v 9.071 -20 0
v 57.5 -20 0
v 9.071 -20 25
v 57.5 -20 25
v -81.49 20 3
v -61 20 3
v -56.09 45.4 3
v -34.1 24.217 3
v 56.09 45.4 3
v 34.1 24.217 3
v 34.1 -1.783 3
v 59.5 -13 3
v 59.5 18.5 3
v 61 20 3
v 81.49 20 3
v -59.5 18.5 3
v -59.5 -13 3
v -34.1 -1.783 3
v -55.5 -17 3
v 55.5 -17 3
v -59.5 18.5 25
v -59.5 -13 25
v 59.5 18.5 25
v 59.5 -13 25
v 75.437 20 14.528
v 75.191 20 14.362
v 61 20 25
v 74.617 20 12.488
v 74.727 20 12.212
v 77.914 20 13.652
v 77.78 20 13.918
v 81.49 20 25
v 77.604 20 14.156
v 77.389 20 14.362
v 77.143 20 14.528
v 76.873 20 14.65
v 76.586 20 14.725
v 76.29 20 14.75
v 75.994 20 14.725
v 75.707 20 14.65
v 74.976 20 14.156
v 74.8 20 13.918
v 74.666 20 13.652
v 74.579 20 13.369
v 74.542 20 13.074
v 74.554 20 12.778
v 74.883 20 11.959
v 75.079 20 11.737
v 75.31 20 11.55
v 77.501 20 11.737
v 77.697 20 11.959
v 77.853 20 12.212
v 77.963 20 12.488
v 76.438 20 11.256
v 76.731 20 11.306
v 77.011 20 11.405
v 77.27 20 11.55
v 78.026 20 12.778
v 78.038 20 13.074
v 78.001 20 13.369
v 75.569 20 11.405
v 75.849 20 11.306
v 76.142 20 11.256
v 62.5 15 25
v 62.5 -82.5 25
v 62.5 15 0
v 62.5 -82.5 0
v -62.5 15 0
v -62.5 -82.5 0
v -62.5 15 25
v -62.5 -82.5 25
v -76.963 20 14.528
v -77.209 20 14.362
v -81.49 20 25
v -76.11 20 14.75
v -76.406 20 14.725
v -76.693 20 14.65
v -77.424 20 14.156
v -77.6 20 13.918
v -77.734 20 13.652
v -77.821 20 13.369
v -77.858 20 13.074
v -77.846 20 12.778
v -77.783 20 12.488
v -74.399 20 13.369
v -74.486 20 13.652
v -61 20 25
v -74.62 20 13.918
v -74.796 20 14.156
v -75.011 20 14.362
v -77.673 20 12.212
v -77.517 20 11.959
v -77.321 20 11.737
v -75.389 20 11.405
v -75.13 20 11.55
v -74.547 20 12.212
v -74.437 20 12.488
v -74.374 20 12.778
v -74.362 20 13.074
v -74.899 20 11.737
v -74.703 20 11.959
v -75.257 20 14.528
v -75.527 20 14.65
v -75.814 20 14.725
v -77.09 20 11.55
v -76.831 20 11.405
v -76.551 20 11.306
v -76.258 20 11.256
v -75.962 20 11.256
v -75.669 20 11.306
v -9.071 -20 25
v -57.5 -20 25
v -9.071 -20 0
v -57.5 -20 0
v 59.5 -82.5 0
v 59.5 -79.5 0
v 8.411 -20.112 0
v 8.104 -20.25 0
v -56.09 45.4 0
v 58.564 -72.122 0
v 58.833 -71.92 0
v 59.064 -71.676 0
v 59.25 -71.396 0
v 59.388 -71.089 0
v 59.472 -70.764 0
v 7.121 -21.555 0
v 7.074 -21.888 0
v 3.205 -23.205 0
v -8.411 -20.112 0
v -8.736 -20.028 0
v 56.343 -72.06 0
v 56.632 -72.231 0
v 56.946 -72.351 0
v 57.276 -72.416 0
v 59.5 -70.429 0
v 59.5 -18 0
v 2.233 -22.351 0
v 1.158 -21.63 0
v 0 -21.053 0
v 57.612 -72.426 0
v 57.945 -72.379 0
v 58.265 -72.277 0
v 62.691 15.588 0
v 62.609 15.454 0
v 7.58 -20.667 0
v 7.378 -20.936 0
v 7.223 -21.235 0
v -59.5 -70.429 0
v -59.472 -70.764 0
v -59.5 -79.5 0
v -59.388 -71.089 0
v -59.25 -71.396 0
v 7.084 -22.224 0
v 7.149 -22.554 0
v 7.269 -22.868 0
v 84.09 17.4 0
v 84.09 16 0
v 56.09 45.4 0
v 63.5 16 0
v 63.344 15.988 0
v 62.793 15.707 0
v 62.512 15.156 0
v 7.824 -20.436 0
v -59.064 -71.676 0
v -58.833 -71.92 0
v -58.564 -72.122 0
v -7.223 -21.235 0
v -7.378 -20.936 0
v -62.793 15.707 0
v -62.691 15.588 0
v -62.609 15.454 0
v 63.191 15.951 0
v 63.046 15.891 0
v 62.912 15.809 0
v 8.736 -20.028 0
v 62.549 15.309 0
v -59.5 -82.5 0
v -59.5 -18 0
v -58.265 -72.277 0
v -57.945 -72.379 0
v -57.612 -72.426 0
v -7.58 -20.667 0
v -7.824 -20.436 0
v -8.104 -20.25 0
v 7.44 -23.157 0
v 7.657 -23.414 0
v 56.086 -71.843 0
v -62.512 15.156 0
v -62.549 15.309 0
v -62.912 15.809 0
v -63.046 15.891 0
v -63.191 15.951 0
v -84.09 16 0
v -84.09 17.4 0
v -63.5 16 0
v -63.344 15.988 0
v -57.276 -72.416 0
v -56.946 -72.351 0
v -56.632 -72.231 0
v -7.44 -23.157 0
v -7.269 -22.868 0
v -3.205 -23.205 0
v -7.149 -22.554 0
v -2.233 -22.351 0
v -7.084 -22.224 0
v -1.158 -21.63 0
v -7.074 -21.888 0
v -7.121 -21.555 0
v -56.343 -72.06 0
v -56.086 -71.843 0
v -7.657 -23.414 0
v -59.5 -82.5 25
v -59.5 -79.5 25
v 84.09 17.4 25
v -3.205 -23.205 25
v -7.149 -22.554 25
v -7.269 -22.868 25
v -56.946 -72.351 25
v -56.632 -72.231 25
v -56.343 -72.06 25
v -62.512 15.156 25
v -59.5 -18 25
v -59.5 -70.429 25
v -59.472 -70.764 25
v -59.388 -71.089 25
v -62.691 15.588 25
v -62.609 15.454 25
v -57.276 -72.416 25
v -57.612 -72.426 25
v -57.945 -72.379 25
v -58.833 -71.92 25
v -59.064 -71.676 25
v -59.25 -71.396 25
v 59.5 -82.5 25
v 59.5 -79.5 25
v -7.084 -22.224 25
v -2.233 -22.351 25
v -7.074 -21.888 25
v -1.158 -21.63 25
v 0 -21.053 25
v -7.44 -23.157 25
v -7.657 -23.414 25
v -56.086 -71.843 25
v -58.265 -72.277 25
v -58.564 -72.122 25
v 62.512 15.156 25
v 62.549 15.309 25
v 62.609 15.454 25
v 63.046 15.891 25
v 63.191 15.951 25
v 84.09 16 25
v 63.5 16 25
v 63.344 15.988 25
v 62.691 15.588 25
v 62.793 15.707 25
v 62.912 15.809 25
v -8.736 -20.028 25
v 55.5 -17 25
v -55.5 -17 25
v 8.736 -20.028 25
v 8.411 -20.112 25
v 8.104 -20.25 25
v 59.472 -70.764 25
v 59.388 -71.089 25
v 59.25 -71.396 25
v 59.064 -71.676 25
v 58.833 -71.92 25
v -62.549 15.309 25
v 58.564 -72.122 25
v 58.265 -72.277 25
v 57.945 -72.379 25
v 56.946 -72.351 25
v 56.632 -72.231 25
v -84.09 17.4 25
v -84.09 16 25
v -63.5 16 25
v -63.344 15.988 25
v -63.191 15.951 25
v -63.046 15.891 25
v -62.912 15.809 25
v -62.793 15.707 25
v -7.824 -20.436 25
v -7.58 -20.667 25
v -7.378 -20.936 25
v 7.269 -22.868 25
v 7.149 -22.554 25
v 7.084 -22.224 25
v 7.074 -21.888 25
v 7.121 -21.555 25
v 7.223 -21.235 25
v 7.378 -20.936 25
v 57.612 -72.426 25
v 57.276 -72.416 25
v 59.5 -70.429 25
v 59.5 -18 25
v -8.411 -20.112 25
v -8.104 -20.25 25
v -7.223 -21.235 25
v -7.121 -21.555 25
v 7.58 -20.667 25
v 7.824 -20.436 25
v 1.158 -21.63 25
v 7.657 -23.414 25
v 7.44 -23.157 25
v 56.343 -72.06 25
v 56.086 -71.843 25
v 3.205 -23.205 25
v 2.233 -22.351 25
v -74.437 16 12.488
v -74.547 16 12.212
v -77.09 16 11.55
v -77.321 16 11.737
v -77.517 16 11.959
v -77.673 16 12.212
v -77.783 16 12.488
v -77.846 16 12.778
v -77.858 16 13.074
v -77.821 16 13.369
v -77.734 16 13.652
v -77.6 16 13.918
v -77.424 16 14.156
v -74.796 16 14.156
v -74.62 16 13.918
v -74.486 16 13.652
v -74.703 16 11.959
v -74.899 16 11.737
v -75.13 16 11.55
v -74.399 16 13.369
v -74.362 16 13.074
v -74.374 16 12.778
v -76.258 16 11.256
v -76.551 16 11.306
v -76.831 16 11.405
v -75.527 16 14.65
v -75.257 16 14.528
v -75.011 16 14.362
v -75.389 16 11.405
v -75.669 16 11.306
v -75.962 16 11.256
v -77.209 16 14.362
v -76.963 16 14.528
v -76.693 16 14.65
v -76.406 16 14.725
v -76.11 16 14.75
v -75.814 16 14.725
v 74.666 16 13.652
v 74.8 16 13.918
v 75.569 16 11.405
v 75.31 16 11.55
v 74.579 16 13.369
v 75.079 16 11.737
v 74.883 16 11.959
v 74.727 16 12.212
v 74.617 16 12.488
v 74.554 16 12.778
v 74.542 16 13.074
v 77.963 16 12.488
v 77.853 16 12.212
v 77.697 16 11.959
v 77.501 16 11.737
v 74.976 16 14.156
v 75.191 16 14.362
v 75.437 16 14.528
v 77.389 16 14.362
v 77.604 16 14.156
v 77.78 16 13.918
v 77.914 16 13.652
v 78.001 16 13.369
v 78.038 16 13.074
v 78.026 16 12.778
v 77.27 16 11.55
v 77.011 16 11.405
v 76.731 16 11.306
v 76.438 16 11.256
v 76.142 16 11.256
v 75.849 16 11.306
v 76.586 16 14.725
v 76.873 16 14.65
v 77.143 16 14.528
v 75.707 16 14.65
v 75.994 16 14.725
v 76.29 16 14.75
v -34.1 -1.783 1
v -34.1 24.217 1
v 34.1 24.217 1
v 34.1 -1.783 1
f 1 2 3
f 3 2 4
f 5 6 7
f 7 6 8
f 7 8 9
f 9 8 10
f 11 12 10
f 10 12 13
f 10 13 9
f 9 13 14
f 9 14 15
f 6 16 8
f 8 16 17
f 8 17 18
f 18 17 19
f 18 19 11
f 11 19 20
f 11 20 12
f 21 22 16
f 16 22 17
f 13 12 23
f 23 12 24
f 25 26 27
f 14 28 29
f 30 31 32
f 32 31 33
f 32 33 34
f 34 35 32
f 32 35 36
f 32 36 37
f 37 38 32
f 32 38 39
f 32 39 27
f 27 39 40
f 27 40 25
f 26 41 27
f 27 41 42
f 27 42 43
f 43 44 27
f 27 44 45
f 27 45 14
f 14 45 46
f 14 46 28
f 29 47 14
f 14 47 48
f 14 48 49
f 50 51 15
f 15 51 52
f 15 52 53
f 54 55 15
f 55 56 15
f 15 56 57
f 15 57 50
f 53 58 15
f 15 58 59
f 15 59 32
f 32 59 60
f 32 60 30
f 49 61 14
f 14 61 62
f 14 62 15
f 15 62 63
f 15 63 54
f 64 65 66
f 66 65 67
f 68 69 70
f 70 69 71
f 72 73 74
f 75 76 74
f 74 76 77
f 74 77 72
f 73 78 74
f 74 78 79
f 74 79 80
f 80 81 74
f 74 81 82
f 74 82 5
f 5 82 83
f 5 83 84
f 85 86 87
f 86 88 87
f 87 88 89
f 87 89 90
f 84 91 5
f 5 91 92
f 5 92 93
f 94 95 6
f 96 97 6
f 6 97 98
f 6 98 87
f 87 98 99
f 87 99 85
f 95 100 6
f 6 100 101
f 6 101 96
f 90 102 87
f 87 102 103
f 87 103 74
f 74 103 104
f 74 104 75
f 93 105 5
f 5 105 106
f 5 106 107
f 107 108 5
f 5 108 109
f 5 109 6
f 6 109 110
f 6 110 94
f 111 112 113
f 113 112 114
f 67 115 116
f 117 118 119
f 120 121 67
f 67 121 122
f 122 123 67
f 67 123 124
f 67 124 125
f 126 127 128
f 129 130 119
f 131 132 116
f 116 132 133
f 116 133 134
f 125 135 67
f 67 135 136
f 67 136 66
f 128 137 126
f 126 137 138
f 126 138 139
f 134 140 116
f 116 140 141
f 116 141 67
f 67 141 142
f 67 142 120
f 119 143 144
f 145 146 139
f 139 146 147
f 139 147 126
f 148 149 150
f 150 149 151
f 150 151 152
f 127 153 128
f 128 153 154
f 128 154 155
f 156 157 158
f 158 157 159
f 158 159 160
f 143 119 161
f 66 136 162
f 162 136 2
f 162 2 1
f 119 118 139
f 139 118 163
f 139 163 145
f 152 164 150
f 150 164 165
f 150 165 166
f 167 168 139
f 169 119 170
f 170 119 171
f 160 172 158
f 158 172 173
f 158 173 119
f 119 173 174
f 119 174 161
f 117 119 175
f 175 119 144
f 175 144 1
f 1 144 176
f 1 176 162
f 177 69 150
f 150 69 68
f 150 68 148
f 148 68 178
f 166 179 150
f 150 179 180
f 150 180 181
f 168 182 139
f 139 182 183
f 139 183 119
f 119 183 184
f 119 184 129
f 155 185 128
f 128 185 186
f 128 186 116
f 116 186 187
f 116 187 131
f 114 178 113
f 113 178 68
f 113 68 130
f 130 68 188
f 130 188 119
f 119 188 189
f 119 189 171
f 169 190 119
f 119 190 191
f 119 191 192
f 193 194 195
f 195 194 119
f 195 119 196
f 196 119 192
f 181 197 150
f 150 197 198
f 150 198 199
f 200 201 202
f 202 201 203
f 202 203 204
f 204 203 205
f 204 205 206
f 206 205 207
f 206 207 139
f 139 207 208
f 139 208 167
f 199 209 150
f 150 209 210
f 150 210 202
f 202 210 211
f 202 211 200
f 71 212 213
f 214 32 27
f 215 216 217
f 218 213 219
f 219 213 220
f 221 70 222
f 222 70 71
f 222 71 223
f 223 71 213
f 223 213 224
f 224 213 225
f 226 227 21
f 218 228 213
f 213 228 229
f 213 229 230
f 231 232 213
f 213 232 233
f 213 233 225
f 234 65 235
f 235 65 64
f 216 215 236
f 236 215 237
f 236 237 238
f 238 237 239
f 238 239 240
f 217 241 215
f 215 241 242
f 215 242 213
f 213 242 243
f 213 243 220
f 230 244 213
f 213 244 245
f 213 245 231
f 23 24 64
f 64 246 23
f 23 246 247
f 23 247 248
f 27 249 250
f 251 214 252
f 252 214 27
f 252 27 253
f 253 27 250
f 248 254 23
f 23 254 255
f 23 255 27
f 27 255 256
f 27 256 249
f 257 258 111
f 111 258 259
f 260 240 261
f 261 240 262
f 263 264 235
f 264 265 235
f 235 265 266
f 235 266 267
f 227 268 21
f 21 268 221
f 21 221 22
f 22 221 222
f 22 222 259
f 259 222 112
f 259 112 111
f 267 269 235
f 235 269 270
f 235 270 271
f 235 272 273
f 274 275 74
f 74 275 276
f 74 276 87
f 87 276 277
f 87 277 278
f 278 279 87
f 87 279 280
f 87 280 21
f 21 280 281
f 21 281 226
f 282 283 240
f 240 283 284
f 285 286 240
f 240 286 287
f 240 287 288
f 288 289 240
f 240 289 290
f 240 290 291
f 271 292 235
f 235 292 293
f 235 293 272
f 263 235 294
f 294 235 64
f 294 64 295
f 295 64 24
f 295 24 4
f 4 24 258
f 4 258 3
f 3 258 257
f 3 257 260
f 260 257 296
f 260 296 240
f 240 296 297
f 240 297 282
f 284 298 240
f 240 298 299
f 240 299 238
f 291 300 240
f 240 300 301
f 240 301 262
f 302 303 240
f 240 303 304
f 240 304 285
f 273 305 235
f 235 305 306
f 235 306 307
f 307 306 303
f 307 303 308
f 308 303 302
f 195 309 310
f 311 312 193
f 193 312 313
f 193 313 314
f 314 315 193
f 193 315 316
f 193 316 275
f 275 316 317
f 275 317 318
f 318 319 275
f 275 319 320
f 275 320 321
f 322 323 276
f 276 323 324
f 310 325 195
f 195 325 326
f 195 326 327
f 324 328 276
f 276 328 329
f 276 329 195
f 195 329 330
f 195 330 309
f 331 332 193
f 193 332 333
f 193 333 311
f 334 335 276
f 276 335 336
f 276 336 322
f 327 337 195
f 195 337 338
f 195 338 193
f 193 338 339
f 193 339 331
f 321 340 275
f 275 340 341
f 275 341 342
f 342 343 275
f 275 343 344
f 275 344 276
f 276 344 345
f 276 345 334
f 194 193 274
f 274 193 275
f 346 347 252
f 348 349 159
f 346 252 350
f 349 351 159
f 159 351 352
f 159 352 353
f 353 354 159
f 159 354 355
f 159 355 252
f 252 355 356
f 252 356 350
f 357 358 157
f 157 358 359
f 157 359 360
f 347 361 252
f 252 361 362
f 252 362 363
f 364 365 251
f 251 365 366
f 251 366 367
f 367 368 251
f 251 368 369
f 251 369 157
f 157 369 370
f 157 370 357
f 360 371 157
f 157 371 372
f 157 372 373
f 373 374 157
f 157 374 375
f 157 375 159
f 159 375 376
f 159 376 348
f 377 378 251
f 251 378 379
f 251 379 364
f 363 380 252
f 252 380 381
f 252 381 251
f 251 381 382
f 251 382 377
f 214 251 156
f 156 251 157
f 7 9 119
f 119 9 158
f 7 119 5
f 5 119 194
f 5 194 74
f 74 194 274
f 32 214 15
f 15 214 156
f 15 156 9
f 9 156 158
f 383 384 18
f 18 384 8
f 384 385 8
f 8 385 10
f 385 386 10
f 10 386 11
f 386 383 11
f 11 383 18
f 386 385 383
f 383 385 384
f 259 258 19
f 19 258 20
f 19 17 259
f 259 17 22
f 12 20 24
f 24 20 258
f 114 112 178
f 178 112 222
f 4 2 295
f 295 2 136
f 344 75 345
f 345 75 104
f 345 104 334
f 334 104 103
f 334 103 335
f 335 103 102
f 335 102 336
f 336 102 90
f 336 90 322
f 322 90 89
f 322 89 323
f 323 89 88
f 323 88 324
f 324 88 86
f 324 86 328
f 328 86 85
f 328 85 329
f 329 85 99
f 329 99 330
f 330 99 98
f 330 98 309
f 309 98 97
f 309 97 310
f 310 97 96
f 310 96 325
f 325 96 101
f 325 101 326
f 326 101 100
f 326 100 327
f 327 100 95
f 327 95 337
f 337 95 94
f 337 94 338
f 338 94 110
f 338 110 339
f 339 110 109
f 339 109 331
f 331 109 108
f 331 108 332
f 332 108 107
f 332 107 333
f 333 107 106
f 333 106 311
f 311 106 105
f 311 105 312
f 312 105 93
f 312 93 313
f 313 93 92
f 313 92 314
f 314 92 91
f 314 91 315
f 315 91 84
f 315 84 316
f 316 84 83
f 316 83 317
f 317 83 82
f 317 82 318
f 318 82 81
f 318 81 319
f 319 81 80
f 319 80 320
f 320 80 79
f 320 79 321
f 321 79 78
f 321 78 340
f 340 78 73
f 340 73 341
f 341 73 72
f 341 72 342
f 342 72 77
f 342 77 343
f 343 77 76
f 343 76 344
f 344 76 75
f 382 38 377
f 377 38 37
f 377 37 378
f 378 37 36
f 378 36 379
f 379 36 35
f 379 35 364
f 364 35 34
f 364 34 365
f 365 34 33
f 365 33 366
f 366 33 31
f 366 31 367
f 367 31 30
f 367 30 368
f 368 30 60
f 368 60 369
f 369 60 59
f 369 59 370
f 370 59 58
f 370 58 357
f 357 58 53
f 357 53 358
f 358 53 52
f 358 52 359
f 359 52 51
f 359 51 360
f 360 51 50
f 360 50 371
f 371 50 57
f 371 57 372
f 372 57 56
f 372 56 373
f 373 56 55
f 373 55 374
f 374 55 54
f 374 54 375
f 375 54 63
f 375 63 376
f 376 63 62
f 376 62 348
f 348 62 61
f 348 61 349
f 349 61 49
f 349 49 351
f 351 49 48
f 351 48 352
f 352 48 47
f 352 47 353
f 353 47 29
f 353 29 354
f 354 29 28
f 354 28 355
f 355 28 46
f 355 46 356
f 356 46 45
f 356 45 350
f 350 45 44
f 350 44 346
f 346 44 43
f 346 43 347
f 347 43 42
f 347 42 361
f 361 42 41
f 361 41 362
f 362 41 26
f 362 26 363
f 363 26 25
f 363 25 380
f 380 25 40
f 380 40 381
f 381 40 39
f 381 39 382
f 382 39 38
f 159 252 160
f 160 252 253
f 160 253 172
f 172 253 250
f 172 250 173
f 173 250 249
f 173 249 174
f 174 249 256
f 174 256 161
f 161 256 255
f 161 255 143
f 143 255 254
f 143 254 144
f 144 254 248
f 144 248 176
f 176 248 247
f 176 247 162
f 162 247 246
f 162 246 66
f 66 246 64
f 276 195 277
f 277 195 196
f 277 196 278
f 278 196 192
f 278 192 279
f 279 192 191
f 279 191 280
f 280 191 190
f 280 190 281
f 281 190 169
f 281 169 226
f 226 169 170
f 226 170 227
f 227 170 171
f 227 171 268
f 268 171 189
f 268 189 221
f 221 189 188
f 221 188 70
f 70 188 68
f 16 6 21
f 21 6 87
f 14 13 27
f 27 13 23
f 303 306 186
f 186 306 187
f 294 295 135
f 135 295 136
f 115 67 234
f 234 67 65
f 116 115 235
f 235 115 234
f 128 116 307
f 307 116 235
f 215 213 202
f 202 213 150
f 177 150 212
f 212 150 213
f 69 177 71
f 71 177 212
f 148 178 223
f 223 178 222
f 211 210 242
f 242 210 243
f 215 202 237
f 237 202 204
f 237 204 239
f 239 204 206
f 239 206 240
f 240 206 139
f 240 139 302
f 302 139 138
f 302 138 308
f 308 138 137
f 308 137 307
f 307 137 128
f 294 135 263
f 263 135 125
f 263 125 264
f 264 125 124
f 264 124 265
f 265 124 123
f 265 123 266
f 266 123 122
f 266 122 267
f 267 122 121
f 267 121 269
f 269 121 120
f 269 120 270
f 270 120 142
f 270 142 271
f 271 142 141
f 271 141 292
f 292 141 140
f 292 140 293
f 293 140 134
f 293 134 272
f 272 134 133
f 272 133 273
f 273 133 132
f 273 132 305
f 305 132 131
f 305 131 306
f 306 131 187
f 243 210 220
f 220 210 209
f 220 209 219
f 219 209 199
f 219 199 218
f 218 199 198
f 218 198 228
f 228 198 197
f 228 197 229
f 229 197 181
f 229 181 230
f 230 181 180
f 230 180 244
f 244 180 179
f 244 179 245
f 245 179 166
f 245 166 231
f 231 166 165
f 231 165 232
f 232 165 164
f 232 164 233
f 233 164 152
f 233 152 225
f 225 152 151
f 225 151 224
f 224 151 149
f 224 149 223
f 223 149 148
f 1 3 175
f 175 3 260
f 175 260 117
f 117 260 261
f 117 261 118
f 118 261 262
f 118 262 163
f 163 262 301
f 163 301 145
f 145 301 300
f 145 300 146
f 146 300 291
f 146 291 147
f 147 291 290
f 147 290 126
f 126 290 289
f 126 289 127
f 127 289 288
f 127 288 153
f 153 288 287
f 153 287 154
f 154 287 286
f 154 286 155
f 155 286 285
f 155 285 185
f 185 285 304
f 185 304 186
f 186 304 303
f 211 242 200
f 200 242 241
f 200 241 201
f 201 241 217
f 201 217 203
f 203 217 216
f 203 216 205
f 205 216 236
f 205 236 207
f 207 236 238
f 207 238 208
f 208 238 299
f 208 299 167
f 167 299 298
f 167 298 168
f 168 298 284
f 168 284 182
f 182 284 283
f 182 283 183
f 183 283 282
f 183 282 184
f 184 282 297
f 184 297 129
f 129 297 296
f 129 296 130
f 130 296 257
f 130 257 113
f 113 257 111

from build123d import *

# Parameters (mm, degrees)
SKETCH1_W            = 125
SKETCH1_H            = 40
BOSS_EXTRUDE1_DEPTH  = 3
SKETCH2_W            = 3
SKETCH2_H            = 40
BOSS_EXTRUDE2_DEPTH  = 22
SKETCH4_W            = 25
SKETCH4_H            = 4
BOSS_EXTRUDE4_DEPTH  = 21.59
SKETCH5_W            = 25
SKETCH5_H            = 4
BOSS_EXTRUDE5_DEPTH  = 21.59
SKETCH6_W            = 168.18
SKETCH6_H            = 25.4
BOSS_EXTRUDE6_DEPTH  = 3
CHAMFER1_SIZE        = 28
SKETCH7_W            = 68.2
SKETCH7_H            = 26
CUT_EXTRUDE1_DEPTH   = 2
SKETCH9_W            = 119
SKETCH9_H            = 3
BOSS_EXTRUDE7_DEPTH  = 22
CHAMFER2_SIZE        = 4
CHAMFER3_SIZE        = 5
SKETCH11_R           = 1.75
CUT_EXTRUDE3_DEPTH   = 5
FILLET1_R            = 1
CHAMFER4_SIZE        = 1.5
BOSS_EXTRUDE10_DEPTH = 25
FILLET2_R            = 10
FILLET3_R            = 2
FILLET4_R            = 2


with BuildPart() as part:
    # Sketch1 → Boss-Extrude1 (new body)
    with BuildSketch(Plane.XY):
        Rectangle(SKETCH1_W, SKETCH1_H)
    extrude(amount=BOSS_EXTRUDE1_DEPTH)

    # Sketch2 → Boss-Extrude2 (add)
    with BuildSketch(Plane.XY.offset(3)):
        with Locations((-61, 0)):
            Rectangle(SKETCH2_W, SKETCH2_H)
        with Locations((61, 0)):
            Rectangle(SKETCH2_W, SKETCH2_H)
    extrude(amount=BOSS_EXTRUDE2_DEPTH)

    # Sketch4 → Boss-Extrude4 (add)
    with BuildSketch(Plane.ZY.offset(62.5)):
        with Locations((12.5, 18)):
            Rectangle(SKETCH4_W, SKETCH4_H)
    extrude(amount=BOSS_EXTRUDE4_DEPTH)

    # Sketch5 → Boss-Extrude5 (add)
    with BuildSketch(Plane(origin=(62.5, 0, 0), x_dir=(0, 0, -1), z_dir=(1, 0, 0))):
        with Locations((-12.5, 18)):
            Rectangle(SKETCH5_W, SKETCH5_H)
    extrude(amount=BOSS_EXTRUDE5_DEPTH)

    # Sketch6 → Boss-Extrude6 (add)
    with BuildSketch(Plane(origin=(0, 0, 0), x_dir=(-1, 0, 0), z_dir=(0, 0, -1))):
        with Locations((0, 32.7)):
            Rectangle(SKETCH6_W, SKETCH6_H)
    extrude(amount=-BOSS_EXTRUDE6_DEPTH)

    # Chamfer1
    chamfer1_edges = [part.edges().sort_by_distance(p)[0] for p in [
        (-84.09, 45.4, 1.5),
        (84.09, 45.4, 1.5),
    ]]
    chamfer(chamfer1_edges, length=CHAMFER1_SIZE)

    # Sketch7 → Cut-Extrude1 (cut)
    with BuildSketch(Plane.XY.offset(3)):
        with Locations((0, 11.217156681)):
            Rectangle(SKETCH7_W, SKETCH7_H)
    extrude(amount=-CUT_EXTRUDE1_DEPTH, mode=Mode.SUBTRACT)

    # Sketch9 → Boss-Extrude7 (add)
    with BuildSketch(Plane.XY.offset(3)):
        with Locations((0, -18.5)):
            Rectangle(SKETCH9_W, SKETCH9_H)
    extrude(amount=BOSS_EXTRUDE7_DEPTH)

    # Chamfer2
    chamfer2_edges = [part.edges().sort_by_distance(p)[0] for p in [
        (-59.5, -17, 14),
        (59.5, -17, 14),
    ]]
    chamfer(chamfer2_edges, length=CHAMFER2_SIZE)

    # Chamfer3
    chamfer3_edges = [part.edges().sort_by_distance(p)[0] for p in [
        (62.5, -20, 12.5),
        (-62.5, -20, 12.5),
    ]]
    chamfer(chamfer3_edges, length=CHAMFER3_SIZE)

    # Sketch11 → Cut-Extrude3 (cut)
    with BuildSketch(Plane(origin=(0, 20, 0), x_dir=(1, 0, 0), z_dir=(0, 1, 0))):
        with Locations(Location((-76.11, -13, 0), (0, 0, 270))):
            Circle(SKETCH11_R)
        with Locations(Location((76.29, -13, 0), (0, 0, 270))):
            Circle(SKETCH11_R)
    extrude(amount=-CUT_EXTRUDE3_DEPTH, mode=Mode.SUBTRACT)

    # Fillet1
    fillet1_edges = [part.edges().sort_by_distance(p)[0] for p in [
        (-62.5, 16, 12.5),
        (62.5, 16, 12.5),
    ]]
    fillet(fillet1_edges, radius=FILLET1_R)

    # Chamfer4
    chamfer4_edges = [part.edges().sort_by_distance(p)[0] for p in [
        (-59.5, 20, 14),
        (59.5, 20, 14),
    ]]
    chamfer(chamfer4_edges, length=CHAMFER4_SIZE)

    # Sketch12 → Boss-Extrude10 (add)
    with BuildSketch(Plane.XY.offset(25)):
        Polygon((-0.275787659, -20.275787659), (-59.5, -79.5), (-59.5, -82.5), (-62.5, -82.5), (-62.5, -15), (-59.5, -15), (-59.5, -75.257359313), (-4.242640687, -20), (0, -20), (4.242640687, -20), (59.5, -75.257359313), (59.5, -15), (62.5, -15), (62.5, -82.5), (59.5, -82.5), (59.5, -79.5), (0.275787659, -20.275787659), align=None)
    extrude(amount=-BOSS_EXTRUDE10_DEPTH)

    # Fillet2
    # the kernel refuses this fillet: 10 mm, written as the material it adds along each edge
    with BuildSketch(Plane(origin=(0.275787659, -20.275787659, 25), x_dir=(0.7071067811865169, -0.7071067811865782, 0), z_dir=(0, 0, -1)), Plane(origin=(-0.275787659, -20.275787659, 25), x_dir=(1, 0, 0), z_dir=(0, 0, -1))) as fillet2_piece_1:
        with BuildLine():
            CenterArc((FILLET2_R * 0.414213562373, FILLET2_R), FILLET2_R, 225, 45)
            Line((-FILLET2_R * 0.292893218813, FILLET2_R * 0.292893218813), (0, 0))
            Line((0, 0), (FILLET2_R * 0.414213562373, 0))
        make_face()
    extrude(amount=25)

    # Fillet3
    fillet3_edges = [part.edges().sort_by_distance(p)[0] for p in [
        (59.5, -75.257359313, 12.5),
        (-59.5, -75.257359313, 12.5),
    ]]
    fillet(fillet3_edges, radius=FILLET3_R)

    # Fillet4
    fillet4_edges = [part.edges().sort_by_distance(p)[0] for p in [
        (-4.242640687, -20, 12.5),
        (4.242640687, -20, 12.5),
    ]]
    fillet(fillet4_edges, radius=FILLET4_R)


solid = part.part
